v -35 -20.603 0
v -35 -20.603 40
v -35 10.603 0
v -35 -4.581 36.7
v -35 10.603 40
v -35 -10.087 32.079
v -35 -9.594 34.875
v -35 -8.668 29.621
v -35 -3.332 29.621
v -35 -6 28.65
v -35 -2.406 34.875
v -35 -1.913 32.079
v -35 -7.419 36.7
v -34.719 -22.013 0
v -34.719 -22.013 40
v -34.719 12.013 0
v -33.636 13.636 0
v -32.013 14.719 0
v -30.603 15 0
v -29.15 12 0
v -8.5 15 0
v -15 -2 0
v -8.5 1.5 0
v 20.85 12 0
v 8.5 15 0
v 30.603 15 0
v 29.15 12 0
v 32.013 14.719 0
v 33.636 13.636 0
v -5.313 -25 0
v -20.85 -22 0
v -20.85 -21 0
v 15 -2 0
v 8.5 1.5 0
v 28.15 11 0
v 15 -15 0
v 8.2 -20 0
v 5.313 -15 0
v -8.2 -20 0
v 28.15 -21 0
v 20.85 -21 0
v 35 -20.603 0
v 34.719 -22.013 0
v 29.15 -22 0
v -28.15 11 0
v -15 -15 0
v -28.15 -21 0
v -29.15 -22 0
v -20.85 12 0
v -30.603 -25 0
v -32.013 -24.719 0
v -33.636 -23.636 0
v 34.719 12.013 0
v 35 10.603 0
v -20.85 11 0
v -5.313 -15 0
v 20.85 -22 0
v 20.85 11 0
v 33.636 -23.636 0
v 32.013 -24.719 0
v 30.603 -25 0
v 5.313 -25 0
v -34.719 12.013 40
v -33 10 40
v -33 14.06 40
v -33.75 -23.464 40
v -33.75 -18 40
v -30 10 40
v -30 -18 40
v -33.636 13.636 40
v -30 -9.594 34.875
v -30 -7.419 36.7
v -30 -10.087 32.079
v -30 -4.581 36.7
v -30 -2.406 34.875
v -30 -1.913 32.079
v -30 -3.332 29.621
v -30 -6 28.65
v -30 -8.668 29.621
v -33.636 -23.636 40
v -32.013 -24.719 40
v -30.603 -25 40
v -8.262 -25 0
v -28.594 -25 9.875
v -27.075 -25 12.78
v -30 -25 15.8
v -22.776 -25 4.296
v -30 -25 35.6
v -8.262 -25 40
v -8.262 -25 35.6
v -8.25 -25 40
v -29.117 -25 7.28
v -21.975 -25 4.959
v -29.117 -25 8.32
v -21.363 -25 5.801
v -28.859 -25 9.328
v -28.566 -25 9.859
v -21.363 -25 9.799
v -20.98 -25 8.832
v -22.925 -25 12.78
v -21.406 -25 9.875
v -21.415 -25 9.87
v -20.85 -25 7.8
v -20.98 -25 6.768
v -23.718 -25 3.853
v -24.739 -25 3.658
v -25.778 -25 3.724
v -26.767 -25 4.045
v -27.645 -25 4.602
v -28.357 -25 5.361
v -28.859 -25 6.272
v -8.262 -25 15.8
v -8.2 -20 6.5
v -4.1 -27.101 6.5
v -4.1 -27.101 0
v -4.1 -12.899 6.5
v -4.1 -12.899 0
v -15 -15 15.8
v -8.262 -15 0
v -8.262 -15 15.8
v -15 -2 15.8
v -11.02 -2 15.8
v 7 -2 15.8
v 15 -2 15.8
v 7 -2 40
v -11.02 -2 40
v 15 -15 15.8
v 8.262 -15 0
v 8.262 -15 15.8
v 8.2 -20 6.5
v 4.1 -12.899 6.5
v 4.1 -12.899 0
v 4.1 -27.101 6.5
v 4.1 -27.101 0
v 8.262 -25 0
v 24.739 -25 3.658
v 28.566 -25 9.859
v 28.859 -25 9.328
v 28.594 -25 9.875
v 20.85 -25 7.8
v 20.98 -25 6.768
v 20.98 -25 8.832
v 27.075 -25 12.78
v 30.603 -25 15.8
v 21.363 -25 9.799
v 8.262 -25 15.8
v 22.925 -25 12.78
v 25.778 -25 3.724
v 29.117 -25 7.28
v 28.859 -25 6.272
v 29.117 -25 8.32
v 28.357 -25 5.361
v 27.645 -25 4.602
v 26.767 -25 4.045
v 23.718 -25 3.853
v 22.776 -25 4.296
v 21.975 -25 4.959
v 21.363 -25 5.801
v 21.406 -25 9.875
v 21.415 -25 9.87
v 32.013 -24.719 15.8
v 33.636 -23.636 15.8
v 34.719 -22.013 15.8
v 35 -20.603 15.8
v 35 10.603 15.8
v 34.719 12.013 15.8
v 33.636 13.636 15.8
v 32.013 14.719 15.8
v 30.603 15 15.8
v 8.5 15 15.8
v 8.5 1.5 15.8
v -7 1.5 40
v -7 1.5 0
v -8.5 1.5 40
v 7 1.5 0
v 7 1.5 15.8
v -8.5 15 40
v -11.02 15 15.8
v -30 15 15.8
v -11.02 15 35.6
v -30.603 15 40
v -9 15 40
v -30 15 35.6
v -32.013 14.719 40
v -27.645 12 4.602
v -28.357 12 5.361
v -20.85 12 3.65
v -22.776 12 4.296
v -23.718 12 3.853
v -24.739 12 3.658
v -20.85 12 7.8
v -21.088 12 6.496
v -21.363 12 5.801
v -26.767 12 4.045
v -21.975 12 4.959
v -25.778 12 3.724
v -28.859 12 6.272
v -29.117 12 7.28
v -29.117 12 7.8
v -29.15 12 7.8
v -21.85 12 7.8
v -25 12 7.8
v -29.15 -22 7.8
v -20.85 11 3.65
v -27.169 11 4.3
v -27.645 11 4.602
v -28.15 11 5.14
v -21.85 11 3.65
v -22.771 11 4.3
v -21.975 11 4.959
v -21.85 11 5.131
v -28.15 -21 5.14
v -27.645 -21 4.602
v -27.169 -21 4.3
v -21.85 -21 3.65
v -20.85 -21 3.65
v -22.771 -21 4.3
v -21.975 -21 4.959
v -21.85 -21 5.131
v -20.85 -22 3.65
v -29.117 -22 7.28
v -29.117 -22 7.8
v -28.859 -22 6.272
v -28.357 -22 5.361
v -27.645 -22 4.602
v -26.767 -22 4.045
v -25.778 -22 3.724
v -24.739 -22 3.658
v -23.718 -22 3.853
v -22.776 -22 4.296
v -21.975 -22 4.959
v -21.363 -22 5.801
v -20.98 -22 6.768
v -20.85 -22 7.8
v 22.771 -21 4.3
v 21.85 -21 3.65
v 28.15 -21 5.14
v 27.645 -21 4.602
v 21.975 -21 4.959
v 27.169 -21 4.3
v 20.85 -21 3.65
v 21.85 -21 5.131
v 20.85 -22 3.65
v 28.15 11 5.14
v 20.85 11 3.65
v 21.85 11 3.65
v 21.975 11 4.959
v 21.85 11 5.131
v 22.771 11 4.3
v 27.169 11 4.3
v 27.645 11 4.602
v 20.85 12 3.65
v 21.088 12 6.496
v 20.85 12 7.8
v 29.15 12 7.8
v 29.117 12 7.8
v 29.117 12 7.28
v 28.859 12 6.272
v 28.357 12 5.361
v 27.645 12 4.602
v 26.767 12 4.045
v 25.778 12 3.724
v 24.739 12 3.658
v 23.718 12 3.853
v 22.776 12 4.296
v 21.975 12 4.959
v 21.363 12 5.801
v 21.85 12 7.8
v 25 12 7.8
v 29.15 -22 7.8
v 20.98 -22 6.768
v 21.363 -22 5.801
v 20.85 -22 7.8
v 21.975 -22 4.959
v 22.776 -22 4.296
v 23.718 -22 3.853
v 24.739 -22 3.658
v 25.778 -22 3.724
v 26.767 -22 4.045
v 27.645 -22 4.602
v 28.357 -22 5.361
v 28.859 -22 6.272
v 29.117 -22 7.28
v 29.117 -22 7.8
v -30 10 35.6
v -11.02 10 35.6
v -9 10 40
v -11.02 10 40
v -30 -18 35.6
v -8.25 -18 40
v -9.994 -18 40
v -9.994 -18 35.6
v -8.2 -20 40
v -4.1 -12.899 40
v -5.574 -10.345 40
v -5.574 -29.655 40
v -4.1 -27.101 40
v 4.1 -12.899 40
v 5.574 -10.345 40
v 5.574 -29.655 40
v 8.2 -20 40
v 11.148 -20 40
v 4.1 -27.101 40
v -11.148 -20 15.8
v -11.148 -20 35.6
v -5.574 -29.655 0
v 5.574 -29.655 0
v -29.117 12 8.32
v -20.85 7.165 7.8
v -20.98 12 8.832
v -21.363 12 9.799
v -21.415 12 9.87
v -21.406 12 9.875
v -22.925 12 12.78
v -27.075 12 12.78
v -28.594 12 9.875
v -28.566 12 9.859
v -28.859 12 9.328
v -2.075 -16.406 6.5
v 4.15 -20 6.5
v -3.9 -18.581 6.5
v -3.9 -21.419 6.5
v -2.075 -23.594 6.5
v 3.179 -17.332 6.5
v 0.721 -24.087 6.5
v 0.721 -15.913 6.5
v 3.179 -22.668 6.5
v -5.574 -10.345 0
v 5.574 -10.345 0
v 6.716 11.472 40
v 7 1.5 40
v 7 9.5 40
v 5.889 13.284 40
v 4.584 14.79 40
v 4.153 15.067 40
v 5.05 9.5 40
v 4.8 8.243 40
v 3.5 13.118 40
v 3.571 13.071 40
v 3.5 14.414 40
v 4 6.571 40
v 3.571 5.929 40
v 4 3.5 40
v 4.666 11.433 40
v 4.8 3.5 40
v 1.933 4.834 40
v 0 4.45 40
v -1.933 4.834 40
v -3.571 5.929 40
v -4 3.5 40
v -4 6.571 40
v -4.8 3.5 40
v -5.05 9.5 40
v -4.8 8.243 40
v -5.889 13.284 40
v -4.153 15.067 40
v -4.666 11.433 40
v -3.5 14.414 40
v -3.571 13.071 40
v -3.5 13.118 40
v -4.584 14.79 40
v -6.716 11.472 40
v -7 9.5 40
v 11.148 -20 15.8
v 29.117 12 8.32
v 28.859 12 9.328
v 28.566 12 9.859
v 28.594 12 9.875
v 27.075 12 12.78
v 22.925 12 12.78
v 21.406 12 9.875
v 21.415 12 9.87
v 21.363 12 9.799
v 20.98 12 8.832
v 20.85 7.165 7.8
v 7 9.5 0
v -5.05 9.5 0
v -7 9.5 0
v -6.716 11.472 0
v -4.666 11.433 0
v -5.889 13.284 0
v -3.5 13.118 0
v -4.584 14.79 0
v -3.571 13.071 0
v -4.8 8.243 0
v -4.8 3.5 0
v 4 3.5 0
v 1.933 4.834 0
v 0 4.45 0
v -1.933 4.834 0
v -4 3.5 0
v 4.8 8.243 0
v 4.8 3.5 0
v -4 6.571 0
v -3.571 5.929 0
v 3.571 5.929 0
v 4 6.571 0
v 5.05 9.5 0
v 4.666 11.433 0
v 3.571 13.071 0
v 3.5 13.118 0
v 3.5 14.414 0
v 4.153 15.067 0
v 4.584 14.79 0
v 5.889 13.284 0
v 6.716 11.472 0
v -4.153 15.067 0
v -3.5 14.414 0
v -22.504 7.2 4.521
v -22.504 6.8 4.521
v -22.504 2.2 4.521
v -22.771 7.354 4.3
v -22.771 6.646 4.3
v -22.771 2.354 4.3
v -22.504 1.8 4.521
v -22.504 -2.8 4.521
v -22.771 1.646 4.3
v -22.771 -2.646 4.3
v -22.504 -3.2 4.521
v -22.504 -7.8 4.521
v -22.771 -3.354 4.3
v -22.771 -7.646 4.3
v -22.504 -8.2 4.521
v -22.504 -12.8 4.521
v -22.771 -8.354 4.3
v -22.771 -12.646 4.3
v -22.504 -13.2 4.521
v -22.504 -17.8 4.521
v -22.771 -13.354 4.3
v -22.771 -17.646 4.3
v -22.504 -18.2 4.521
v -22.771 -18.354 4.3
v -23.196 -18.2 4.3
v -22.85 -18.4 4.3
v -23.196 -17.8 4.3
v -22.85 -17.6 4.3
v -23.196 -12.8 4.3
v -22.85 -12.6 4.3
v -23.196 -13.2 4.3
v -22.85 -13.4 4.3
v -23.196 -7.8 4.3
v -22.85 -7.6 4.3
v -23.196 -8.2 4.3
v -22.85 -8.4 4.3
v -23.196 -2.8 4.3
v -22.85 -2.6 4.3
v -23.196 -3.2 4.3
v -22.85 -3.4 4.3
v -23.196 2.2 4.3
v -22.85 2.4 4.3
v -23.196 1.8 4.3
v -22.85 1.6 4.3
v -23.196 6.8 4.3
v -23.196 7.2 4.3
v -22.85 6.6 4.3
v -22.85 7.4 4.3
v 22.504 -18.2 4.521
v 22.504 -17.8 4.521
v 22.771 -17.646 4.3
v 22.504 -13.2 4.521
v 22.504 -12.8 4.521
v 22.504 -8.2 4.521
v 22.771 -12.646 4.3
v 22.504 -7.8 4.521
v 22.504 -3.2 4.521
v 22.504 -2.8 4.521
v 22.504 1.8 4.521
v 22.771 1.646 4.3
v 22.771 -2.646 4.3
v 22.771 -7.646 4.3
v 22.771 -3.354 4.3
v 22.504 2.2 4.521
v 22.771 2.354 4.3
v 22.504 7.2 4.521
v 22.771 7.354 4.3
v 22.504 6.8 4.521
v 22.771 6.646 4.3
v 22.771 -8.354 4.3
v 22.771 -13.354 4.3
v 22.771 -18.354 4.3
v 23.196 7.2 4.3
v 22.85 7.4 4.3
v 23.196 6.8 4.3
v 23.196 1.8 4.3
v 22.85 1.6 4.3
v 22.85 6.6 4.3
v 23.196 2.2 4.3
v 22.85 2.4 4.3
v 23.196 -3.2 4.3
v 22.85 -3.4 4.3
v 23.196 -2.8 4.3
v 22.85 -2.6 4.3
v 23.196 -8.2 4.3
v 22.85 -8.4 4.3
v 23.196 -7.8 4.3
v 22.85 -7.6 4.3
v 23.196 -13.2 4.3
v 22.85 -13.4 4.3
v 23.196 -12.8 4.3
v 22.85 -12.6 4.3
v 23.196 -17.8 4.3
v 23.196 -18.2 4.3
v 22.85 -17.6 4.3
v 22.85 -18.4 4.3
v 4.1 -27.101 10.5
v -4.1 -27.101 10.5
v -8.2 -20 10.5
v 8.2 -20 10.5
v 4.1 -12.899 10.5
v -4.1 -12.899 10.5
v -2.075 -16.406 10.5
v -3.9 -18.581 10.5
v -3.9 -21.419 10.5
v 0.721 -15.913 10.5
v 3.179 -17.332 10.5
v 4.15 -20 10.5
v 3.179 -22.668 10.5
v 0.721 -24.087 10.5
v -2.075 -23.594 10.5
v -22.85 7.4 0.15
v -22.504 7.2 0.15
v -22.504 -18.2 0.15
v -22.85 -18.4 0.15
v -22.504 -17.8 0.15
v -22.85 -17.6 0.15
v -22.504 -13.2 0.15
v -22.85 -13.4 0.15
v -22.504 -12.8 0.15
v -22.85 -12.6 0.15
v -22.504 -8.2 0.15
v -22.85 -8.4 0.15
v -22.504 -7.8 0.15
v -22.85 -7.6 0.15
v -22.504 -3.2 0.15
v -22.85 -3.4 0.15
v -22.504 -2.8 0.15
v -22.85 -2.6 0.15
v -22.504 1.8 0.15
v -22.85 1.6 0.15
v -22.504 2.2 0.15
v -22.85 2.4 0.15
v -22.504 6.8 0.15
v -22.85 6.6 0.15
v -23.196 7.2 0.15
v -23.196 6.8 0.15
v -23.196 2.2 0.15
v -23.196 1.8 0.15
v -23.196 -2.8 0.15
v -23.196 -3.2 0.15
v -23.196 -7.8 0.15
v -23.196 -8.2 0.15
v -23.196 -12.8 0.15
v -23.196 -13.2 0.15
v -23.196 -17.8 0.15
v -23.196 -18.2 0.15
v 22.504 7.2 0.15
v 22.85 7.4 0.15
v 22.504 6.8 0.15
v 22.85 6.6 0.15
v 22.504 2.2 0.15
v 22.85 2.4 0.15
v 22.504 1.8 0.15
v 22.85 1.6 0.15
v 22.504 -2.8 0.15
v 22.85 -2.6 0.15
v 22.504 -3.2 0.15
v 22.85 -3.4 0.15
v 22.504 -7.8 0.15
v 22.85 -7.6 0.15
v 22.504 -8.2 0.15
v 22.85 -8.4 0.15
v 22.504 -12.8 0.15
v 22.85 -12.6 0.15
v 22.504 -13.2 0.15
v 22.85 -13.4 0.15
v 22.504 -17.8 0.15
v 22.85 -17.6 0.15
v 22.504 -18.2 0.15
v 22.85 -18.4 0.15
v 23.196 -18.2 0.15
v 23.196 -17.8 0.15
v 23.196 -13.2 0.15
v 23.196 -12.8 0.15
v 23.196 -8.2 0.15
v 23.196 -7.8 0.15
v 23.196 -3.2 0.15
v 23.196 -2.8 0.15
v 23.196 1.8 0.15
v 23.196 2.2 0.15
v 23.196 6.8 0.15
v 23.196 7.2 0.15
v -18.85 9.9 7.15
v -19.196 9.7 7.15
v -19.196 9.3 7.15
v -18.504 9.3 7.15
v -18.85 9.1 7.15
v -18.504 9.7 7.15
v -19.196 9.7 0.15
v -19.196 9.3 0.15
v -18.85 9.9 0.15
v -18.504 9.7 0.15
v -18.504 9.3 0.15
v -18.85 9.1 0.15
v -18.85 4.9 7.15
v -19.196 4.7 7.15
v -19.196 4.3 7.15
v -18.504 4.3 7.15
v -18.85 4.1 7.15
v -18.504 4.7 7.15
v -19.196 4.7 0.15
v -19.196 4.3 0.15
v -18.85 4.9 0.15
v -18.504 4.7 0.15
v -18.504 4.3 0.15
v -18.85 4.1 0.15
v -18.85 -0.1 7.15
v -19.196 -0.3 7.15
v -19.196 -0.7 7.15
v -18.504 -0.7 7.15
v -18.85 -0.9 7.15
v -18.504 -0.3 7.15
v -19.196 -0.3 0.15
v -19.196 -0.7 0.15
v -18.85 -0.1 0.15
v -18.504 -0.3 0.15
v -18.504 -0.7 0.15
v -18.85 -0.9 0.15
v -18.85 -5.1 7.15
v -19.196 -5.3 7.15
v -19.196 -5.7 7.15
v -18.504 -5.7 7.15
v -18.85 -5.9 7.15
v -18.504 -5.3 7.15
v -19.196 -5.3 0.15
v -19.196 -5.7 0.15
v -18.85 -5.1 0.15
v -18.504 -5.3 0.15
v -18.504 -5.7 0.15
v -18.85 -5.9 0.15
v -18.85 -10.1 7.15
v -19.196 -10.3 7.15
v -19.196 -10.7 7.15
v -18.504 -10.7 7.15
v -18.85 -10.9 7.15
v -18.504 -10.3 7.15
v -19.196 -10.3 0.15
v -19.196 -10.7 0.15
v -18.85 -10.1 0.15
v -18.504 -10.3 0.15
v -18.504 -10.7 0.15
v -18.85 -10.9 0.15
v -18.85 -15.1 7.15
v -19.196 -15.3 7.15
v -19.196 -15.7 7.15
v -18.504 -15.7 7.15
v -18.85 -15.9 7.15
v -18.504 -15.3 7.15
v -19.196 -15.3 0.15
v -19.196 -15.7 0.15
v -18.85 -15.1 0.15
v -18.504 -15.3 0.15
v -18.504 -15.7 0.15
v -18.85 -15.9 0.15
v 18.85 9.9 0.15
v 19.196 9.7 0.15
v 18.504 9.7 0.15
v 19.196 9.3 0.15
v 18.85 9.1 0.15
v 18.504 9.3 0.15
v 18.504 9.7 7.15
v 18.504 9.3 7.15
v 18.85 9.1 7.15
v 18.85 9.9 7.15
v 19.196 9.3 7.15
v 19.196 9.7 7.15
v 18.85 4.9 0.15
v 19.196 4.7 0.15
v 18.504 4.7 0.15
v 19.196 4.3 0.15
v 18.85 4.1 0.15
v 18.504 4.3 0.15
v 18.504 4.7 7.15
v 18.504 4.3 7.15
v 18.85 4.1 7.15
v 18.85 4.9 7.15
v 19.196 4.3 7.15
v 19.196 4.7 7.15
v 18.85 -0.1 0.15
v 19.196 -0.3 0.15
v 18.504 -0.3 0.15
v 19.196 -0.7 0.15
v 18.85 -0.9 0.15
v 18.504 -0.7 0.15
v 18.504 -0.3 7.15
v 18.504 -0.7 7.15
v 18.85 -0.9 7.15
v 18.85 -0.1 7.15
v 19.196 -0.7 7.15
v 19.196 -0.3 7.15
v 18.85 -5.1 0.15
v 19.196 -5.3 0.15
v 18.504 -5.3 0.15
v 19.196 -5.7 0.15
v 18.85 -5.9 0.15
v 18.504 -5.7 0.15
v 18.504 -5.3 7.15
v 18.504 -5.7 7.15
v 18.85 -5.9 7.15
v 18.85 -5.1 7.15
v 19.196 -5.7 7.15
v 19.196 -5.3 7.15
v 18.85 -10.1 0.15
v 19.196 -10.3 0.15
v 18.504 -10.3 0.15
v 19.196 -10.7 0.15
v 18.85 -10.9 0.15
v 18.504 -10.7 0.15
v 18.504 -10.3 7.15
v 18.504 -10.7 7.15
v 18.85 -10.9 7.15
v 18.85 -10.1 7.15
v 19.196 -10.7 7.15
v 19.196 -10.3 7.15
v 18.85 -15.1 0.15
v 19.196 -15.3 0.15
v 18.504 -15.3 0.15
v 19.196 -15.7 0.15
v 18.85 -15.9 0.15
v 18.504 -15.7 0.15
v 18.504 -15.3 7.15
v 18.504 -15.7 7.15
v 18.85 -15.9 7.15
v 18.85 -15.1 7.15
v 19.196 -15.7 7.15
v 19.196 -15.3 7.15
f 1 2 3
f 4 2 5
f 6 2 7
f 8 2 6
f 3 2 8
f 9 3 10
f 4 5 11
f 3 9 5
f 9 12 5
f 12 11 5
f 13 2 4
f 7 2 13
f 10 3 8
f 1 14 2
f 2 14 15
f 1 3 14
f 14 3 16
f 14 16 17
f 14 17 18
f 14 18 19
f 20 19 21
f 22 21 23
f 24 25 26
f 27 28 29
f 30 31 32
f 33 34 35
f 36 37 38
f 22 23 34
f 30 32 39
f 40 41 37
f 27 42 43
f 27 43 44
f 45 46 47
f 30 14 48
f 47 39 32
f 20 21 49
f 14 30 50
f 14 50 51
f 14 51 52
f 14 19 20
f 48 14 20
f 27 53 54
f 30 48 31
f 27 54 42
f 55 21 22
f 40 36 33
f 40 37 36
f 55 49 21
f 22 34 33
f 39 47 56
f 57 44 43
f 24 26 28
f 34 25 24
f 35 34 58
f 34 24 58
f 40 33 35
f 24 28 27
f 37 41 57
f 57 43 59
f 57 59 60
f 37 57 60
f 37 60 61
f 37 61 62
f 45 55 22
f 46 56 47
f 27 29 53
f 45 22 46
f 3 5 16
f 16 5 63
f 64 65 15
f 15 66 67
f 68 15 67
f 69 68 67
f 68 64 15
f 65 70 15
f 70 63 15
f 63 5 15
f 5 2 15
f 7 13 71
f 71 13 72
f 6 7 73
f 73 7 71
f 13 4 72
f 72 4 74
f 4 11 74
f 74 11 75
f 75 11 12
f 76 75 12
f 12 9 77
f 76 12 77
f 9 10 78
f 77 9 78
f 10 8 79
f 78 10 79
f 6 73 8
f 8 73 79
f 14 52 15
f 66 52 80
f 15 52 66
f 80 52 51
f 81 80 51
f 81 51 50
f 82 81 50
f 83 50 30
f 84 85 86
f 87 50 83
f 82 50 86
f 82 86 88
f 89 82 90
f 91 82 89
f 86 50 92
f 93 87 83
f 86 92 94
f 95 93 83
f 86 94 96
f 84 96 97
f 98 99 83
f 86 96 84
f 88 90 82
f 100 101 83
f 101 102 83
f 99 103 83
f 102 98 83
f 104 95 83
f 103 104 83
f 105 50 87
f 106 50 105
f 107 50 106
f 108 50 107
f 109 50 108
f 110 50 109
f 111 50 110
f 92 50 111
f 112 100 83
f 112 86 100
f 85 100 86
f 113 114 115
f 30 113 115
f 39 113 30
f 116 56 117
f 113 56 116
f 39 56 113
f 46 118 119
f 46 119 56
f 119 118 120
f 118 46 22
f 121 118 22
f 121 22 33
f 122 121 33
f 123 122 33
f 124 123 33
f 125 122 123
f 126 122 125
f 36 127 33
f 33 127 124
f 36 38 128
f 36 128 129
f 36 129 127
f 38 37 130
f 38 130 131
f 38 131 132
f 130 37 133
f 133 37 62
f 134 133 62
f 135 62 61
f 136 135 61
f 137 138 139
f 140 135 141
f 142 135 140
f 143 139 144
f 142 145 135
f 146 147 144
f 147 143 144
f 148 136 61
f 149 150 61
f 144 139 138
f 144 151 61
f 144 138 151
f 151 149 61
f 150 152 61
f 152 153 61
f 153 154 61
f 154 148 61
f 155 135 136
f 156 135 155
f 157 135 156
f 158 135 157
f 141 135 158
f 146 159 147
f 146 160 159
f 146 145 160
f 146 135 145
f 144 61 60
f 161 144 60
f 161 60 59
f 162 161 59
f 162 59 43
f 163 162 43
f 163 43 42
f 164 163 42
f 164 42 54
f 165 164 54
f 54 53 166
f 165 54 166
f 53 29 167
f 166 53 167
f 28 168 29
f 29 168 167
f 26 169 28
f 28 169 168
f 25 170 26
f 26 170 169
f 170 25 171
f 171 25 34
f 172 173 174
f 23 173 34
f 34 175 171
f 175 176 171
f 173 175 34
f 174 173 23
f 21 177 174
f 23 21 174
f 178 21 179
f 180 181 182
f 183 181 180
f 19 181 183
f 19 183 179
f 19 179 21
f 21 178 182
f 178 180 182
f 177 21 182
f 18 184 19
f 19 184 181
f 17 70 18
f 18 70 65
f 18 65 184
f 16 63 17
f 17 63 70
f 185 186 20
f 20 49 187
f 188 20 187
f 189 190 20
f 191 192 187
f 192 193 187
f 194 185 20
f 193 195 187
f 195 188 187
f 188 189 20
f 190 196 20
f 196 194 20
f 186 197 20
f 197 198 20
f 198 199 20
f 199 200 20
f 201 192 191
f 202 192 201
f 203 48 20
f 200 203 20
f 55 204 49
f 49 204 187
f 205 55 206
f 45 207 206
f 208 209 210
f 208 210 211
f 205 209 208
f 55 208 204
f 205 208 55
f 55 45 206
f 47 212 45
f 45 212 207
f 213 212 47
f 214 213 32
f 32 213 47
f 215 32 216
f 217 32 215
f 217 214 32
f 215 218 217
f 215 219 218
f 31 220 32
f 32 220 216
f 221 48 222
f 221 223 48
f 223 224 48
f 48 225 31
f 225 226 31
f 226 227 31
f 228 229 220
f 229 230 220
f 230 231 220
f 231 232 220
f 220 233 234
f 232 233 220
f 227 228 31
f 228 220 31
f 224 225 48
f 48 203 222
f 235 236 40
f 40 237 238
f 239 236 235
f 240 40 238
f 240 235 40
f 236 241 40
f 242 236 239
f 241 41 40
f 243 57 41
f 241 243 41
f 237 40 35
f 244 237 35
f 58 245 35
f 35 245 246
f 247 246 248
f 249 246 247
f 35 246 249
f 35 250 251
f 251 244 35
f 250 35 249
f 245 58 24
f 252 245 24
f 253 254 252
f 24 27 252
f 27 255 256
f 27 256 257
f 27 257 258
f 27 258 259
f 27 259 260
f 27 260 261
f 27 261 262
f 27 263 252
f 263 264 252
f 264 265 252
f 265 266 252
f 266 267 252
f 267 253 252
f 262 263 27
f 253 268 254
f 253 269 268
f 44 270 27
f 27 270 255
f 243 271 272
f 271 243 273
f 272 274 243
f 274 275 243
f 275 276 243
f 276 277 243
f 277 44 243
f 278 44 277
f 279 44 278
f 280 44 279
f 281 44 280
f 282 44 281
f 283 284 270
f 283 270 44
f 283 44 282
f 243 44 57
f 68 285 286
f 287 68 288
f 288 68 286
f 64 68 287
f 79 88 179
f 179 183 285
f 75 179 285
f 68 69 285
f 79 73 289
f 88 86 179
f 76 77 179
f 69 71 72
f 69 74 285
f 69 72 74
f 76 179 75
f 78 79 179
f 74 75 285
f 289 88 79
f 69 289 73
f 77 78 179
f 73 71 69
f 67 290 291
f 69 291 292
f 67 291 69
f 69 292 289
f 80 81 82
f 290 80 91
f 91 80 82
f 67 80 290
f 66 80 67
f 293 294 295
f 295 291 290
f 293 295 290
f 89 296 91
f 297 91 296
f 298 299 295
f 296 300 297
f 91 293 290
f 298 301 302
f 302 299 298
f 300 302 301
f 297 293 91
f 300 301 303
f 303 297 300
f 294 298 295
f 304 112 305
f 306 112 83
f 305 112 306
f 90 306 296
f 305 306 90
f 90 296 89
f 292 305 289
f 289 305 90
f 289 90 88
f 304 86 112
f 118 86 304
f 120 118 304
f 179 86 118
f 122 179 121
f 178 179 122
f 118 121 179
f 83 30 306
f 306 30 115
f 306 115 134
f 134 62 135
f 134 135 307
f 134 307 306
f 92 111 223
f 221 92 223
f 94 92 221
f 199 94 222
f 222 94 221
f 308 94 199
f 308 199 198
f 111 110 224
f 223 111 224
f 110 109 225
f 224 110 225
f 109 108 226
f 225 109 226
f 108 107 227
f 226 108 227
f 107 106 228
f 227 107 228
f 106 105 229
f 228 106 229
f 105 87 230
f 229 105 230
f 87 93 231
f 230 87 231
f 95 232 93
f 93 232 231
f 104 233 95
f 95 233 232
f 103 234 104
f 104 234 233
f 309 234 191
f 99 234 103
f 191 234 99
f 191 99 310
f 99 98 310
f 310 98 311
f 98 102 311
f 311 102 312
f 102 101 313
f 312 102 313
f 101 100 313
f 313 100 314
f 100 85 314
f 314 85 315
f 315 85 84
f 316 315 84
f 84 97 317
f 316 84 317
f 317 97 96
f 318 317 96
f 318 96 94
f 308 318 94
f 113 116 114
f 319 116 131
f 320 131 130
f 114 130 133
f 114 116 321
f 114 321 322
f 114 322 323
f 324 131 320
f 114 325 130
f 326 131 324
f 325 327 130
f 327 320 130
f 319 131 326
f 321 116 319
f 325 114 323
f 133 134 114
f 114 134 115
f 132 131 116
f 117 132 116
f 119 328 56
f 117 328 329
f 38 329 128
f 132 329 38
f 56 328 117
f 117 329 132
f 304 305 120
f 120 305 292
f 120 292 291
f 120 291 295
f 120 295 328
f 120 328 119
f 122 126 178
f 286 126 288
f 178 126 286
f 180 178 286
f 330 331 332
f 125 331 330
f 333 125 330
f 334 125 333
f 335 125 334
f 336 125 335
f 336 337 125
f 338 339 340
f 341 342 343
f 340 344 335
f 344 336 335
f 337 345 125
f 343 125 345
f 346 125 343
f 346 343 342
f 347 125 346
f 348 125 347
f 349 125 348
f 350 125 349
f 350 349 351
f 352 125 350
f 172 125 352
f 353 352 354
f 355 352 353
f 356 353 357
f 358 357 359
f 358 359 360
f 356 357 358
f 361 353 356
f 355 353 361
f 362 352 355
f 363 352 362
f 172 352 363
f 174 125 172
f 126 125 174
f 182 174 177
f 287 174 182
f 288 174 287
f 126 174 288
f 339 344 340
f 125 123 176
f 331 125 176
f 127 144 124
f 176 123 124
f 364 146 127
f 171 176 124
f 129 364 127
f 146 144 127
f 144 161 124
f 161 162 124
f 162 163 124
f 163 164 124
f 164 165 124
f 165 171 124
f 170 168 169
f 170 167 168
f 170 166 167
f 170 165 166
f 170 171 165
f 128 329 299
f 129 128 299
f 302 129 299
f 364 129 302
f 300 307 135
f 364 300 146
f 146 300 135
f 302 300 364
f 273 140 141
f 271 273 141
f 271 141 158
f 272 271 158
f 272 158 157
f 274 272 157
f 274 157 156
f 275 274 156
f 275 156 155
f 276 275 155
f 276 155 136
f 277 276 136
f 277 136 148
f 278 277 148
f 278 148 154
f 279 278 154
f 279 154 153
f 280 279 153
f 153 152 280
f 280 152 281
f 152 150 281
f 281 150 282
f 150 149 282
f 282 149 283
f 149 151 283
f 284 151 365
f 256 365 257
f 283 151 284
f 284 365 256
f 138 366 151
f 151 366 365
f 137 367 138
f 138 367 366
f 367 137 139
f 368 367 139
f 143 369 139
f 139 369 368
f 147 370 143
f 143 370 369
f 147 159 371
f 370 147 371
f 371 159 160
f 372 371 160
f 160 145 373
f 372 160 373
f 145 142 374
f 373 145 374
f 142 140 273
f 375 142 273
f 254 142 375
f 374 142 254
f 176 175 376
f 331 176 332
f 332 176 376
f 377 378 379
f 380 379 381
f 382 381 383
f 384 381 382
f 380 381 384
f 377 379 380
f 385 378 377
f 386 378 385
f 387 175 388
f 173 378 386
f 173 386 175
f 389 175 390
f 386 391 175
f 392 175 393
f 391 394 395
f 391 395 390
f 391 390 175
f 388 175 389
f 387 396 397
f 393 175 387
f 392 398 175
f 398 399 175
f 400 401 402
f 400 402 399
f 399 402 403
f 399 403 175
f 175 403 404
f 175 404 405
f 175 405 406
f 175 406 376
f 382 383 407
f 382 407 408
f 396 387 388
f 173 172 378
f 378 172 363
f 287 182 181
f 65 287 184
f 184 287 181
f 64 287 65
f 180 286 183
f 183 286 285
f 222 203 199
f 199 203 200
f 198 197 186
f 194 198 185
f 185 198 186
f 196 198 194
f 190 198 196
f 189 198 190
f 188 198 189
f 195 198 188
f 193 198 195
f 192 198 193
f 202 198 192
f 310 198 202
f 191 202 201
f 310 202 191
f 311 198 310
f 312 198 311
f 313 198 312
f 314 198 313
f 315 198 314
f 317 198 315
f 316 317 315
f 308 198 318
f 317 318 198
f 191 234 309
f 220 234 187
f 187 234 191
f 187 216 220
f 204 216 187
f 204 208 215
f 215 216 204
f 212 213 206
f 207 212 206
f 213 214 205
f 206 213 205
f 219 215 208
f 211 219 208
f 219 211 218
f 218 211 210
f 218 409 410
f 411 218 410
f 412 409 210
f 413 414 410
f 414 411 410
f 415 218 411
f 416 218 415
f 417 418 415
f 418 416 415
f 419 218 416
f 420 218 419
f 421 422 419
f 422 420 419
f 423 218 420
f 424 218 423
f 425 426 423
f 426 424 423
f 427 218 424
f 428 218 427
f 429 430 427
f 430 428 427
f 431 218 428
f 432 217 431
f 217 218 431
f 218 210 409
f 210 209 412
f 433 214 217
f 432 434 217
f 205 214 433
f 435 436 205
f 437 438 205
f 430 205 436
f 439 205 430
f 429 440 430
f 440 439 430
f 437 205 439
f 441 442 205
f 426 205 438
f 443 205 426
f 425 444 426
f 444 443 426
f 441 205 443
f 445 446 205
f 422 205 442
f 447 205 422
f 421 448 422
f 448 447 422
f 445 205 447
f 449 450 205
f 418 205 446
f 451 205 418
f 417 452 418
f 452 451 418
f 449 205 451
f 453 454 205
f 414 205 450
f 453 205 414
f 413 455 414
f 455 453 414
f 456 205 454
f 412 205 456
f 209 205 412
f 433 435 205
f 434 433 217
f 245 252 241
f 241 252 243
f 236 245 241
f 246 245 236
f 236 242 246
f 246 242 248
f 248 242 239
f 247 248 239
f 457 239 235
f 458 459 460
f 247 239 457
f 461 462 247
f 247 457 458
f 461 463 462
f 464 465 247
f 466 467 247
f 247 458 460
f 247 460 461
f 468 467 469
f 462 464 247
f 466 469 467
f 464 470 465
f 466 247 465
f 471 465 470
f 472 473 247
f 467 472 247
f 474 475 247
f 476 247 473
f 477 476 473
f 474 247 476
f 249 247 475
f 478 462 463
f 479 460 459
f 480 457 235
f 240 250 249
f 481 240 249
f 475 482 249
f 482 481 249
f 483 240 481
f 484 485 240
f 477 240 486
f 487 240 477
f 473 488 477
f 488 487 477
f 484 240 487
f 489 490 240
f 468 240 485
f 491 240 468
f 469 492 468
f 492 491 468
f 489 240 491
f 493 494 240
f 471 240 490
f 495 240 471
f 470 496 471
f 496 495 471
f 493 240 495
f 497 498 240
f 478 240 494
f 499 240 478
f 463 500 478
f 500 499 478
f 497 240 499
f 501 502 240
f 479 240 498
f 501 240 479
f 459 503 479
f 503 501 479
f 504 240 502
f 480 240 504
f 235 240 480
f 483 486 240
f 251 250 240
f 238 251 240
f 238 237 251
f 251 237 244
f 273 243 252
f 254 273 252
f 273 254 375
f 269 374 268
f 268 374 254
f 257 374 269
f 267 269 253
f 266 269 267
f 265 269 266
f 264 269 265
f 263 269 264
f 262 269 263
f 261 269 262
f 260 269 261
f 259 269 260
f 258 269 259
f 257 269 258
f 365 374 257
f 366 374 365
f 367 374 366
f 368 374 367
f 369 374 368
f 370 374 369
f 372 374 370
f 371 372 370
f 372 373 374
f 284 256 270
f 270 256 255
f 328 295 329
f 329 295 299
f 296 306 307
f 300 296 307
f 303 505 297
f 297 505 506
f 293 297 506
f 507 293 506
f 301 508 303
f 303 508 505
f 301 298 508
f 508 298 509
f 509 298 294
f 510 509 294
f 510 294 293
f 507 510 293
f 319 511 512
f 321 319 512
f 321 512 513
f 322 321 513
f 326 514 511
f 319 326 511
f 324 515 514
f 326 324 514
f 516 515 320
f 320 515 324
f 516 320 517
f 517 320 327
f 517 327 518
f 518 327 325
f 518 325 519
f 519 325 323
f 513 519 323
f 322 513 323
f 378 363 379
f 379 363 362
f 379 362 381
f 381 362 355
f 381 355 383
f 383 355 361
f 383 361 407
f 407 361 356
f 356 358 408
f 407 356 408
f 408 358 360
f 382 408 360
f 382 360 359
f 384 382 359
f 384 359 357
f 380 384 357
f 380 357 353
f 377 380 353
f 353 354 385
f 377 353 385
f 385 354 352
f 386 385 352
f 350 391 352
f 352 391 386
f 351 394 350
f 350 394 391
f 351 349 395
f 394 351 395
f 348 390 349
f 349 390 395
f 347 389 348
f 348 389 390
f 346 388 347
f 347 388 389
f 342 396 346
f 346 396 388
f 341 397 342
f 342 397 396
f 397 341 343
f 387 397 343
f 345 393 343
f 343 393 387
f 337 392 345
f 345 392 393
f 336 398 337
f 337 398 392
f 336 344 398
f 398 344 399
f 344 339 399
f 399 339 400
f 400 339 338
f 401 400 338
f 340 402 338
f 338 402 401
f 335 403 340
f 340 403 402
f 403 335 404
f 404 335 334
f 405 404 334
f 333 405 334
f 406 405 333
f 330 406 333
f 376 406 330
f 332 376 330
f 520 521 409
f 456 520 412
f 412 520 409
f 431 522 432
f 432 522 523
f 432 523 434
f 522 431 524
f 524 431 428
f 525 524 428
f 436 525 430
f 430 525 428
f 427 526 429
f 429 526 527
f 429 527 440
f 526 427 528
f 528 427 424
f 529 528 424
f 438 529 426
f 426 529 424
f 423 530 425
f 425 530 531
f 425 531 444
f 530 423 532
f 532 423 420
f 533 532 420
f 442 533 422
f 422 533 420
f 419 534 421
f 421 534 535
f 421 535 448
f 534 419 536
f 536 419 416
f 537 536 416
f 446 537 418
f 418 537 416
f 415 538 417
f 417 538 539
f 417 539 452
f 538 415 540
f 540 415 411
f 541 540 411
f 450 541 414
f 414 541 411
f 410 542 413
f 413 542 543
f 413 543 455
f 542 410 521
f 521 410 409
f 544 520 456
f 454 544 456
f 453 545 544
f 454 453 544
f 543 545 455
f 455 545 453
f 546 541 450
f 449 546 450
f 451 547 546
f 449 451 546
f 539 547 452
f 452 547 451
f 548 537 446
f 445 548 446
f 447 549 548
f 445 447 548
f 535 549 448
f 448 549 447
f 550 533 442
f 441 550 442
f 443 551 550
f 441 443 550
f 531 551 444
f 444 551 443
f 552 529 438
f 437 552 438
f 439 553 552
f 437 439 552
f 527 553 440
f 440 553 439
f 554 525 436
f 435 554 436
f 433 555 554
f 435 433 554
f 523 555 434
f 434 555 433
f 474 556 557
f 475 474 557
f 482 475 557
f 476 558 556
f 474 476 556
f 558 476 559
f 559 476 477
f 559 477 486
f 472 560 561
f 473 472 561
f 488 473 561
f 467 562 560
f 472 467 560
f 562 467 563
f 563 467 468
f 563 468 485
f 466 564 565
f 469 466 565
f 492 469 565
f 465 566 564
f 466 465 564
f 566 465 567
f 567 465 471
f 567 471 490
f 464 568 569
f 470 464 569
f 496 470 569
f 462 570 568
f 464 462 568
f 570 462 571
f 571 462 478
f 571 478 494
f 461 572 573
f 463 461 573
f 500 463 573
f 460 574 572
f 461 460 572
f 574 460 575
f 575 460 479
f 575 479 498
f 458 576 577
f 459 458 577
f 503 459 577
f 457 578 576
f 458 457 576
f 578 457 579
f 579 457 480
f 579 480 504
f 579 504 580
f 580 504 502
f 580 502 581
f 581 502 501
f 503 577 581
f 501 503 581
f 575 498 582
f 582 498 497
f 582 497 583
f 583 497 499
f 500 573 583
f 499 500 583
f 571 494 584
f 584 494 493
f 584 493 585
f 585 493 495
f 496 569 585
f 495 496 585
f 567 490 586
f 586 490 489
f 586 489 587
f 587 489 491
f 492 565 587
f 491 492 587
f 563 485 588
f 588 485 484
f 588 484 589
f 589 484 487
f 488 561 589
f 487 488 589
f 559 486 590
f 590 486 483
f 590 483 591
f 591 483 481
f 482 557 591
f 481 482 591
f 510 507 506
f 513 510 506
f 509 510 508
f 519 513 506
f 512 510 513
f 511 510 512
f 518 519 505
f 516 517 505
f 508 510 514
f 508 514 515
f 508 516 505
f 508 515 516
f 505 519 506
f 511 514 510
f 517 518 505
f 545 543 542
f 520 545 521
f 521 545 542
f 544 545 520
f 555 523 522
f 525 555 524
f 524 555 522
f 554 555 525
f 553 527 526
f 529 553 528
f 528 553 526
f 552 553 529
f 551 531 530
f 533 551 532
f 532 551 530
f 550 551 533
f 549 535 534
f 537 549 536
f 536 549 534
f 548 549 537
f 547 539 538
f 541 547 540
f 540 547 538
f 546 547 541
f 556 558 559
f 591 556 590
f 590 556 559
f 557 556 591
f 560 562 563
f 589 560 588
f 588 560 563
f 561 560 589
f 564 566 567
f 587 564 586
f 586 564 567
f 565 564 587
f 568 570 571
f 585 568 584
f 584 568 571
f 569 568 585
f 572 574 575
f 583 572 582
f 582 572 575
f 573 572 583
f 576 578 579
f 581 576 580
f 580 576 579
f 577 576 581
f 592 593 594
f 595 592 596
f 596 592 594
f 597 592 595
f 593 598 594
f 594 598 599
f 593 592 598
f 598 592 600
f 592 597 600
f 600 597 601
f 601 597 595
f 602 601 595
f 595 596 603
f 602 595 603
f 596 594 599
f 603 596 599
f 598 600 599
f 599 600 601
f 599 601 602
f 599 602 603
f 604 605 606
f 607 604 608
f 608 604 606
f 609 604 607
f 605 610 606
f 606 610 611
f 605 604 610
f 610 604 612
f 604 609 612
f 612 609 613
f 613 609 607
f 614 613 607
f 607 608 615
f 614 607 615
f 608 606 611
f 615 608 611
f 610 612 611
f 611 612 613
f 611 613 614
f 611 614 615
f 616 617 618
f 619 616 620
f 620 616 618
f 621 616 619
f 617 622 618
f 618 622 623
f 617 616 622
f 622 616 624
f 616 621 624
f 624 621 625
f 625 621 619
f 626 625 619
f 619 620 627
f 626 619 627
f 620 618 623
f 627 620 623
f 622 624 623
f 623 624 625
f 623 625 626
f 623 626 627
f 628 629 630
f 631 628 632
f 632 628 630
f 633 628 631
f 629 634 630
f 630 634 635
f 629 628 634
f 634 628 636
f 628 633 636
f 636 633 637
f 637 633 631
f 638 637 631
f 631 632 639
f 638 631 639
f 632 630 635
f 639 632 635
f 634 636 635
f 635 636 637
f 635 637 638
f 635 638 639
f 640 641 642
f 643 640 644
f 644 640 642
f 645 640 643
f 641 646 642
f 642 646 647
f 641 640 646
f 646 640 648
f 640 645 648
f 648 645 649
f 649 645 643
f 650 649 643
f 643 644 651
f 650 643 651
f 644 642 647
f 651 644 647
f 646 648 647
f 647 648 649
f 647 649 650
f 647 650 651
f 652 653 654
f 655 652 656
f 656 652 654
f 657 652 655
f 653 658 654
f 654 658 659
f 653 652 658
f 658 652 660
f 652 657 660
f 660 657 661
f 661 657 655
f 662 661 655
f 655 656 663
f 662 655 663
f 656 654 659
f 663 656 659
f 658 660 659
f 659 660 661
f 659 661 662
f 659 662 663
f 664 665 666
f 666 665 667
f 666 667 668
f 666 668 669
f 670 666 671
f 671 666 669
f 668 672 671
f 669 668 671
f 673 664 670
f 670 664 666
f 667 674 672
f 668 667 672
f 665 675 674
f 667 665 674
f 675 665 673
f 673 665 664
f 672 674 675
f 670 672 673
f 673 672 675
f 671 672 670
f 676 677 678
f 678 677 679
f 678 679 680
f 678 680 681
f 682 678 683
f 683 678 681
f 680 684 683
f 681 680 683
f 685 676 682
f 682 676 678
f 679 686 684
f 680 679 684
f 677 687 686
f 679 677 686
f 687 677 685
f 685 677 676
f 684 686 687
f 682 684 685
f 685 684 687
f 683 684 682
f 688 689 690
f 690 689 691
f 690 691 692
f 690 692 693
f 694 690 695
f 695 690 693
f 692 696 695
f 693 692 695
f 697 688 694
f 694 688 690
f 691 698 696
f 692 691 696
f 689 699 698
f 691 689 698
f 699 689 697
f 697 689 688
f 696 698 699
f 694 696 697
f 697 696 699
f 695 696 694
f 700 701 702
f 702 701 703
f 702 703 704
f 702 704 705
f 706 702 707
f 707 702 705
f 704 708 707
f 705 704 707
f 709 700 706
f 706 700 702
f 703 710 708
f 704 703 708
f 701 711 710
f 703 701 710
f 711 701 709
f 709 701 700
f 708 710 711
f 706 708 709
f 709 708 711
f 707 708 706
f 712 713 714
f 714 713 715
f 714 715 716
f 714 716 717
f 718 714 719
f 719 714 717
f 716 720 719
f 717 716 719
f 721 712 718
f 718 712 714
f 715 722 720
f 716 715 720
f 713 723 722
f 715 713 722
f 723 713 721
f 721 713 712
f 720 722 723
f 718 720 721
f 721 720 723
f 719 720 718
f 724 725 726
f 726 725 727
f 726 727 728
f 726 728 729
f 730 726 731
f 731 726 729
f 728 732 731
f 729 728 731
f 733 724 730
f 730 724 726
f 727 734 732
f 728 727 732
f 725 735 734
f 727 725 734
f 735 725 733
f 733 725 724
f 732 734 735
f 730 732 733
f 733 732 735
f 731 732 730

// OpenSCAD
// file: teardrop.scad
teardropcentering2();

module teardrop( r = 4.5, h = 20 )
{
	rotate( [-270, 0, 90] )
	linear_extrude( height = h )
	{
		circle( r = r, $fn = 25);
		polygon( points = [[0, 0], [r * cos( 30 ), r * sin( 30 )], [0.5 * r, r],[-0.5 * r, r], [-r * cos( 30 ), r * sin( 30 ) ]], 
				paths = [[ 0, 1, 2, 3, 4]] );
	}
}

module teardropcentering( r = 4.5, h = 20 )
{
	rotate( [-270, 0, 90] )
	linear_extrude( height = h )
	{
		circle( r = r, $fn = 25 );
		polygon( points = [[0, 0], [r * cos( 30 ), r * sin( 30 )], [0.5 * r, 1.2 * r], [-0.5 * r, 1.2 * r], [-r * cos( 30 ), r * sin( 30 ) ]],
				paths = [[ 0, 1, 2, 3, 4]] );
	}
}

module teardropcentering2( r = 4.5, h = 20 )
{
	//rotate( [-270, 0, 90] )
	difference()
	{
		linear_extrude( height = h )
		{
			circle( r = r, $fn = 25 );
			polygon( points = [[0, 0], [r * cos( 30 ),r * sin( 30 )], [0.5 * r, 1.2 * r], [-0.5 * r, 1.2 * r], [-r * cos( 30 ), r * sin( 30 ) ]],
				paths = [[0, 1, 2, 3, 4]] );
		}
		translate( v = [-1.5 * r, -1.5 * r, -1] ) cube( size = [3 * r, 1.5 * r, h+2] );
	}
}
// file: bushing.scad
// PRUSA Mendel  
// Bushings
// GNU GPL v2
// Josef Průša
// josefprusa@me.com
// prusadjs.cz
// http://www.reprap.org/wiki/Prusa_Mendel
// http://github.com/prusajr/PrusaMendel

include <configuration.scad>

/**
 * @name Bushing
 * @category Printed
 * @link bushing
 */ 

rodsize = bushing_rodsize+0.1;
outerDiameter = bushing_outerDiameter;
lenght = bushing_lenght;
type = bushing_type;


module bushing(stiff, lenght=11){
	difference(){
		union(){
			translate(v=[-7,-8,0])cube(size = [14,8,lenght]);
			cylinder(h = lenght, r=7);
		}
	//cutout inside
	//Opening
	rotate(a=[0,0,45]) translate(v=[1,1,-1]) cube(size = [16,16,lenght+2]);
	//Cutouts to make it more bendy
	if(stiff){
		translate(v=[-4.8,-6,-1]) cube(size = [0.8,6,lenght+2]);
		translate(v=[4,-6,-1]) cube(size = [0.8,6,lenght+2]);
	}else{
		translate(v=[-4.8,-8,-1]) cube(size = [0.8,8,lenght+2]);
		translate(v=[4,-8,-1]) cube(size = [0.8,8,lenght+2]);
	}
	translate(v=[0,5,(lenght+2)/2]) cube(size = [7,8,lenght+2], center=true);
	translate(v=[0,0,-1]) cylinder(h = lenght+2, r=(rodsize+2)/2);
	}
}
module do_bushing(base_depth){
translate([0,0,8+base_depth]) rotate([90,0,0])
difference(){
	union(){
		bushing(false, 11);
		translate(v=[-7,-8-base_depth,0])cube(size = [14,base_depth,15]);
		translate(v=[-7,-8-base_depth,13])cube(size = [14,base_depth+3,2]);
	}
	translate([0,-6-base_depth,5.5]) rotate([90,0,0]) cylinder(h=base_depth+2,r=2.7/2,center=true, $fn=12);
}
}

do_bushing(4);
// file: configuration.scad
// PRUSA Mendel  
// Configuration file
// GNU GPL v2
// Josef Průša
// josefprusa@me.com
// prusadjs.cz
// http://www.reprap.org/wiki/Prusa_Mendel
// http://github.com/prusajr/PrusaMendel

// PLEASE SELECT ONE OF THE CONFIGURATIONS BELOW
// BY UN-COMMENTING IT

variant=0; //0 for metric
//variant=1; //1 for SAE
if(variant==0){
echo("variant: metric");
}else if(variant==1){
echo("variant: sae");
} else{
echo("WARNING: INVALID CONFIGURATION");
}


vars=[
//[m8_dia, m8_nut, m4_dia, m4_nut, m3_dia, m3_nut, bush_dia, mot_shaft, bush_rod, bush_outerdia, bush_length]
[8.3,16.4,4.3,9,3.3,7,11,5.3,8,16,11],//metric
[9,15.7,5.5,10.6,5.5,10.6,11.5,5.3,7.9375,16,11]//SAE
];

//BUSHING TYPE Can generate three versions
// 1 - regular old ones
// 2 - helical ones
// 3 - holders for brass or any other bought bushings
bushing_type = 2;

//Round corner diameter
round_corner_diameter = 8;

//X end parameters
axis_diameter_real = 4;
axis_diameter_larger = 4.2 ;
pressure_pad_height = 0.7;

//Thin wall size
layer_height = 0.4;
perimeter_width_over_thicknes = 1.6;
infill_widht_over_thickness = 1.55;
thin_wall = 2*(perimeter_width_over_thicknes*layer_height+infill_widht_over_thickness*layer_height);
if(thin_wall<2){
	echo("Check thin wall size, its below 2mm!");
}
echo(thin_wall);

//DO NOT TOUCH THIS SECTION!
m8_diameter = vars[variant][0];
m8_nut_diameter = vars[variant][1];
m4_diameter = vars[variant][2];
m4_nut_diameter = vars[variant][3];
m3_diameter = vars[variant][4];
m3_nut_diameter = vars[variant][5];
bushing_diameter = vars[variant][6];
motor_shaft=vars[variant][7];
bushing_rodsize = vars[variant][8];
bushing_outerDiameter = vars[variant][9];
bushing_lenght = vars[variant][10];


// MINI-HUXLEY VERSION (TODO, just place holder)
// include <configuration-huxley.scad>

// MEGA VERSION (TODO, just place holder)
// include <configuration-mega.scad>


// Some basic functions, probably should be somewhere else
module roundcorner(diameter){
	difference(){
		cube(size = [diameter,diameter,99], center = false);
		translate(v = [diameter, diameter, 0]) cylinder(h = 100, r=diameter, center=true);
	}
}
module polyhole(h, d) {
    n = max(round(2 * d),3);
    rotate([0,0,180])
        cylinder(h = h, r = (d / 2) / cos (180 / n), $fn = n);
}
// main file
// PRUSA Mendel  
// X-end with idler mount
// GNU GPL v2
// Josef Průša
// josefprusa@me.com
// prusadjs.cz
// http://www.reprap.org/wiki/Prusa_Mendel
// http://github.com/prusajr/PrusaMendel

include <configuration.scad>
corection = 1.17; 

/**
 * @name X end idler
 * @category Printed
 * @using 1 m8spring
 * @using 3 m8nut
 * @using 3 m8washer
 * @using 3 m8washer-big
 * @using 2 m8x30
 */ 
use <x-end.scad>
module xendidler(){
difference(){
union(){	xend(40);
	translate(v = [0, 0, 12.5]){
		mirror(){
			difference(){
				union(){
					translate(v = [21, -21.5, 25.3]) cube(size = [25.5,7,4.4], center = true);
					translate(v = [21, 12.5, 25.3]) cube(size = [24,5,4.4], center = true);
					translate(v = [32.5, -5, 12.5]) cube(size = [5,40,30], center = true);
				}
				translate(v = [32.5, -6, 28-3-4.7]) rotate(a=[0,90,0]) cylinder(h = 90, r=m8_diameter/2, $fn=9, center=true);
			}
		}
	}
}
xendcorners(5,5,5,5,0);
}
}
xendidler();
